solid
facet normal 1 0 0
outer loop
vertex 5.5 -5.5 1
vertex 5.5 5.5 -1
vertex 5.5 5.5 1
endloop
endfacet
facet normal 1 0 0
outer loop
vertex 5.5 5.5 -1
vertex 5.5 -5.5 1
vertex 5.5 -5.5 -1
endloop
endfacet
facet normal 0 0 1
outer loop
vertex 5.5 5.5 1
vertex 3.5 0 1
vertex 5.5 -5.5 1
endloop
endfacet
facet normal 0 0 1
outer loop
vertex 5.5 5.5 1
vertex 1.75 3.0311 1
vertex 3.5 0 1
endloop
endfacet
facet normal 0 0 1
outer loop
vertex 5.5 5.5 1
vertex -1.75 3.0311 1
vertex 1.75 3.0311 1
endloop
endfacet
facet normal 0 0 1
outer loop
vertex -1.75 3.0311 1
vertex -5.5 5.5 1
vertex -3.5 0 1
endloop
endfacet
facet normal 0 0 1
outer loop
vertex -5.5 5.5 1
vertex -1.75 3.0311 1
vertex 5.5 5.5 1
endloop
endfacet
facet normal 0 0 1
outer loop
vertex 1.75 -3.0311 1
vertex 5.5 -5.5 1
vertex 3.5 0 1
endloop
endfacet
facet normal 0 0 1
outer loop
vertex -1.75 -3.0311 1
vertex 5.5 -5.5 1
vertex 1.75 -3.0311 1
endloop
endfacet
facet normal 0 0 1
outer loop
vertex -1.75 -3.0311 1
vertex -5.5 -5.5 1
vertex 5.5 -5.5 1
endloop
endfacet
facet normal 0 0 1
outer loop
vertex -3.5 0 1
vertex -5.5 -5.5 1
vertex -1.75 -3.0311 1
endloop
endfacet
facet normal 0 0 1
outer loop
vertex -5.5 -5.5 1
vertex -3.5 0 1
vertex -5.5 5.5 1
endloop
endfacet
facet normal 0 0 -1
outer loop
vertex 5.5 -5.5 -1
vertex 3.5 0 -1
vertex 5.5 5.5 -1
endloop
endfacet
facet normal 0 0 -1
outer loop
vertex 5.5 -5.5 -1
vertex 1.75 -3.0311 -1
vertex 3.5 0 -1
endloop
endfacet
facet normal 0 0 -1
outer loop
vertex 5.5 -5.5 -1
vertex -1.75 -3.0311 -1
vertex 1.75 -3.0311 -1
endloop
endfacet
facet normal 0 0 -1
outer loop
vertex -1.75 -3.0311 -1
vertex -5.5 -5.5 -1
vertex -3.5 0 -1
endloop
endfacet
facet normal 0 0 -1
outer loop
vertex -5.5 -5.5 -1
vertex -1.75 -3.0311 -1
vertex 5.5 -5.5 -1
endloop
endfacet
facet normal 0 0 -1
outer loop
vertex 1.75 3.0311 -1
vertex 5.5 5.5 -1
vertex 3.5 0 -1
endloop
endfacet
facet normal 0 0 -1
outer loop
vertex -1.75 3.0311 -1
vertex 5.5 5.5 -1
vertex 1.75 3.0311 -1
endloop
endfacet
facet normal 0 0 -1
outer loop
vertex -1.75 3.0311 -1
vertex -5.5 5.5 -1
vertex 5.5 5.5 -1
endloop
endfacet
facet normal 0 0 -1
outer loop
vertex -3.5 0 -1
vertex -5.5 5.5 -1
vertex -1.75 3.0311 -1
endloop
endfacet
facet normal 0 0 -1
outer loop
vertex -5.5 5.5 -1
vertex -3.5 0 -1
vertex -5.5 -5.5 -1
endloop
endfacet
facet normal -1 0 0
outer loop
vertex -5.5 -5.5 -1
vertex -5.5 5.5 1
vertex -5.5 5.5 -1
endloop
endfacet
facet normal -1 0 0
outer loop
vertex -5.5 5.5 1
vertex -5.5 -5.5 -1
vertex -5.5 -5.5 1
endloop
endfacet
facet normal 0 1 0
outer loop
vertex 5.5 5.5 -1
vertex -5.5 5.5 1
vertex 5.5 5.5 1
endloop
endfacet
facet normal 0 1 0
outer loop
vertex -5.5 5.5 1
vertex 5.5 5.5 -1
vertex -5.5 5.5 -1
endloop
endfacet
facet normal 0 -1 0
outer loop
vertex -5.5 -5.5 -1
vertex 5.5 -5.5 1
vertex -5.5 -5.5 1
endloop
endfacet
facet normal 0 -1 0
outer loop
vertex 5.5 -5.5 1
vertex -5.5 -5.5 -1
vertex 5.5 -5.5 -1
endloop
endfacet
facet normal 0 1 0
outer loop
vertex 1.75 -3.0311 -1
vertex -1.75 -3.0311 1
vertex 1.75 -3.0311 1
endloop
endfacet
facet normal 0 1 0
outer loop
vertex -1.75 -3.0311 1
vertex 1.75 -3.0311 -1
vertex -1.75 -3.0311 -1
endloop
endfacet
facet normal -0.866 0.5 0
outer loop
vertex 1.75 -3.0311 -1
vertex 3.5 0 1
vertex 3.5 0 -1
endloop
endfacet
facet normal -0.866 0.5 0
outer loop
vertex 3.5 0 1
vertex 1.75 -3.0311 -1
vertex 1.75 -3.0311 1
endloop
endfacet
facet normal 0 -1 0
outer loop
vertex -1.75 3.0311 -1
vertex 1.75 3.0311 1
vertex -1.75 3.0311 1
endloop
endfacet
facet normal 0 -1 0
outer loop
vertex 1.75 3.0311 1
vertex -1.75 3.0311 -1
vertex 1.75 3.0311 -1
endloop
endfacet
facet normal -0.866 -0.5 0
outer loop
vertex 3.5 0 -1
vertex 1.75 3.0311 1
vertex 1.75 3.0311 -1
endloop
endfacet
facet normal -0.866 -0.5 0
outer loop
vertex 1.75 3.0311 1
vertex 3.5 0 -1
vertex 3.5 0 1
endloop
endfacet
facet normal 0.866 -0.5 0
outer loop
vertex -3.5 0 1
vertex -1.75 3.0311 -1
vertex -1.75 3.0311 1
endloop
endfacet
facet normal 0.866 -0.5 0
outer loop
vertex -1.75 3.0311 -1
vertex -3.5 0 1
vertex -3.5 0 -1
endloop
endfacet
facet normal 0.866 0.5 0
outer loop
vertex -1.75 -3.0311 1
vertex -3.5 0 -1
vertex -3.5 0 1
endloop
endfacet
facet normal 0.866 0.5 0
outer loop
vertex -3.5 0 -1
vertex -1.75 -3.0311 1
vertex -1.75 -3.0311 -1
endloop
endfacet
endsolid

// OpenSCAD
difference() {
     cube([11,11, 2], center=true);
     translate([0,0,-1.1]) cylinder(h=2.2, d=7, $fn = 6);
}
